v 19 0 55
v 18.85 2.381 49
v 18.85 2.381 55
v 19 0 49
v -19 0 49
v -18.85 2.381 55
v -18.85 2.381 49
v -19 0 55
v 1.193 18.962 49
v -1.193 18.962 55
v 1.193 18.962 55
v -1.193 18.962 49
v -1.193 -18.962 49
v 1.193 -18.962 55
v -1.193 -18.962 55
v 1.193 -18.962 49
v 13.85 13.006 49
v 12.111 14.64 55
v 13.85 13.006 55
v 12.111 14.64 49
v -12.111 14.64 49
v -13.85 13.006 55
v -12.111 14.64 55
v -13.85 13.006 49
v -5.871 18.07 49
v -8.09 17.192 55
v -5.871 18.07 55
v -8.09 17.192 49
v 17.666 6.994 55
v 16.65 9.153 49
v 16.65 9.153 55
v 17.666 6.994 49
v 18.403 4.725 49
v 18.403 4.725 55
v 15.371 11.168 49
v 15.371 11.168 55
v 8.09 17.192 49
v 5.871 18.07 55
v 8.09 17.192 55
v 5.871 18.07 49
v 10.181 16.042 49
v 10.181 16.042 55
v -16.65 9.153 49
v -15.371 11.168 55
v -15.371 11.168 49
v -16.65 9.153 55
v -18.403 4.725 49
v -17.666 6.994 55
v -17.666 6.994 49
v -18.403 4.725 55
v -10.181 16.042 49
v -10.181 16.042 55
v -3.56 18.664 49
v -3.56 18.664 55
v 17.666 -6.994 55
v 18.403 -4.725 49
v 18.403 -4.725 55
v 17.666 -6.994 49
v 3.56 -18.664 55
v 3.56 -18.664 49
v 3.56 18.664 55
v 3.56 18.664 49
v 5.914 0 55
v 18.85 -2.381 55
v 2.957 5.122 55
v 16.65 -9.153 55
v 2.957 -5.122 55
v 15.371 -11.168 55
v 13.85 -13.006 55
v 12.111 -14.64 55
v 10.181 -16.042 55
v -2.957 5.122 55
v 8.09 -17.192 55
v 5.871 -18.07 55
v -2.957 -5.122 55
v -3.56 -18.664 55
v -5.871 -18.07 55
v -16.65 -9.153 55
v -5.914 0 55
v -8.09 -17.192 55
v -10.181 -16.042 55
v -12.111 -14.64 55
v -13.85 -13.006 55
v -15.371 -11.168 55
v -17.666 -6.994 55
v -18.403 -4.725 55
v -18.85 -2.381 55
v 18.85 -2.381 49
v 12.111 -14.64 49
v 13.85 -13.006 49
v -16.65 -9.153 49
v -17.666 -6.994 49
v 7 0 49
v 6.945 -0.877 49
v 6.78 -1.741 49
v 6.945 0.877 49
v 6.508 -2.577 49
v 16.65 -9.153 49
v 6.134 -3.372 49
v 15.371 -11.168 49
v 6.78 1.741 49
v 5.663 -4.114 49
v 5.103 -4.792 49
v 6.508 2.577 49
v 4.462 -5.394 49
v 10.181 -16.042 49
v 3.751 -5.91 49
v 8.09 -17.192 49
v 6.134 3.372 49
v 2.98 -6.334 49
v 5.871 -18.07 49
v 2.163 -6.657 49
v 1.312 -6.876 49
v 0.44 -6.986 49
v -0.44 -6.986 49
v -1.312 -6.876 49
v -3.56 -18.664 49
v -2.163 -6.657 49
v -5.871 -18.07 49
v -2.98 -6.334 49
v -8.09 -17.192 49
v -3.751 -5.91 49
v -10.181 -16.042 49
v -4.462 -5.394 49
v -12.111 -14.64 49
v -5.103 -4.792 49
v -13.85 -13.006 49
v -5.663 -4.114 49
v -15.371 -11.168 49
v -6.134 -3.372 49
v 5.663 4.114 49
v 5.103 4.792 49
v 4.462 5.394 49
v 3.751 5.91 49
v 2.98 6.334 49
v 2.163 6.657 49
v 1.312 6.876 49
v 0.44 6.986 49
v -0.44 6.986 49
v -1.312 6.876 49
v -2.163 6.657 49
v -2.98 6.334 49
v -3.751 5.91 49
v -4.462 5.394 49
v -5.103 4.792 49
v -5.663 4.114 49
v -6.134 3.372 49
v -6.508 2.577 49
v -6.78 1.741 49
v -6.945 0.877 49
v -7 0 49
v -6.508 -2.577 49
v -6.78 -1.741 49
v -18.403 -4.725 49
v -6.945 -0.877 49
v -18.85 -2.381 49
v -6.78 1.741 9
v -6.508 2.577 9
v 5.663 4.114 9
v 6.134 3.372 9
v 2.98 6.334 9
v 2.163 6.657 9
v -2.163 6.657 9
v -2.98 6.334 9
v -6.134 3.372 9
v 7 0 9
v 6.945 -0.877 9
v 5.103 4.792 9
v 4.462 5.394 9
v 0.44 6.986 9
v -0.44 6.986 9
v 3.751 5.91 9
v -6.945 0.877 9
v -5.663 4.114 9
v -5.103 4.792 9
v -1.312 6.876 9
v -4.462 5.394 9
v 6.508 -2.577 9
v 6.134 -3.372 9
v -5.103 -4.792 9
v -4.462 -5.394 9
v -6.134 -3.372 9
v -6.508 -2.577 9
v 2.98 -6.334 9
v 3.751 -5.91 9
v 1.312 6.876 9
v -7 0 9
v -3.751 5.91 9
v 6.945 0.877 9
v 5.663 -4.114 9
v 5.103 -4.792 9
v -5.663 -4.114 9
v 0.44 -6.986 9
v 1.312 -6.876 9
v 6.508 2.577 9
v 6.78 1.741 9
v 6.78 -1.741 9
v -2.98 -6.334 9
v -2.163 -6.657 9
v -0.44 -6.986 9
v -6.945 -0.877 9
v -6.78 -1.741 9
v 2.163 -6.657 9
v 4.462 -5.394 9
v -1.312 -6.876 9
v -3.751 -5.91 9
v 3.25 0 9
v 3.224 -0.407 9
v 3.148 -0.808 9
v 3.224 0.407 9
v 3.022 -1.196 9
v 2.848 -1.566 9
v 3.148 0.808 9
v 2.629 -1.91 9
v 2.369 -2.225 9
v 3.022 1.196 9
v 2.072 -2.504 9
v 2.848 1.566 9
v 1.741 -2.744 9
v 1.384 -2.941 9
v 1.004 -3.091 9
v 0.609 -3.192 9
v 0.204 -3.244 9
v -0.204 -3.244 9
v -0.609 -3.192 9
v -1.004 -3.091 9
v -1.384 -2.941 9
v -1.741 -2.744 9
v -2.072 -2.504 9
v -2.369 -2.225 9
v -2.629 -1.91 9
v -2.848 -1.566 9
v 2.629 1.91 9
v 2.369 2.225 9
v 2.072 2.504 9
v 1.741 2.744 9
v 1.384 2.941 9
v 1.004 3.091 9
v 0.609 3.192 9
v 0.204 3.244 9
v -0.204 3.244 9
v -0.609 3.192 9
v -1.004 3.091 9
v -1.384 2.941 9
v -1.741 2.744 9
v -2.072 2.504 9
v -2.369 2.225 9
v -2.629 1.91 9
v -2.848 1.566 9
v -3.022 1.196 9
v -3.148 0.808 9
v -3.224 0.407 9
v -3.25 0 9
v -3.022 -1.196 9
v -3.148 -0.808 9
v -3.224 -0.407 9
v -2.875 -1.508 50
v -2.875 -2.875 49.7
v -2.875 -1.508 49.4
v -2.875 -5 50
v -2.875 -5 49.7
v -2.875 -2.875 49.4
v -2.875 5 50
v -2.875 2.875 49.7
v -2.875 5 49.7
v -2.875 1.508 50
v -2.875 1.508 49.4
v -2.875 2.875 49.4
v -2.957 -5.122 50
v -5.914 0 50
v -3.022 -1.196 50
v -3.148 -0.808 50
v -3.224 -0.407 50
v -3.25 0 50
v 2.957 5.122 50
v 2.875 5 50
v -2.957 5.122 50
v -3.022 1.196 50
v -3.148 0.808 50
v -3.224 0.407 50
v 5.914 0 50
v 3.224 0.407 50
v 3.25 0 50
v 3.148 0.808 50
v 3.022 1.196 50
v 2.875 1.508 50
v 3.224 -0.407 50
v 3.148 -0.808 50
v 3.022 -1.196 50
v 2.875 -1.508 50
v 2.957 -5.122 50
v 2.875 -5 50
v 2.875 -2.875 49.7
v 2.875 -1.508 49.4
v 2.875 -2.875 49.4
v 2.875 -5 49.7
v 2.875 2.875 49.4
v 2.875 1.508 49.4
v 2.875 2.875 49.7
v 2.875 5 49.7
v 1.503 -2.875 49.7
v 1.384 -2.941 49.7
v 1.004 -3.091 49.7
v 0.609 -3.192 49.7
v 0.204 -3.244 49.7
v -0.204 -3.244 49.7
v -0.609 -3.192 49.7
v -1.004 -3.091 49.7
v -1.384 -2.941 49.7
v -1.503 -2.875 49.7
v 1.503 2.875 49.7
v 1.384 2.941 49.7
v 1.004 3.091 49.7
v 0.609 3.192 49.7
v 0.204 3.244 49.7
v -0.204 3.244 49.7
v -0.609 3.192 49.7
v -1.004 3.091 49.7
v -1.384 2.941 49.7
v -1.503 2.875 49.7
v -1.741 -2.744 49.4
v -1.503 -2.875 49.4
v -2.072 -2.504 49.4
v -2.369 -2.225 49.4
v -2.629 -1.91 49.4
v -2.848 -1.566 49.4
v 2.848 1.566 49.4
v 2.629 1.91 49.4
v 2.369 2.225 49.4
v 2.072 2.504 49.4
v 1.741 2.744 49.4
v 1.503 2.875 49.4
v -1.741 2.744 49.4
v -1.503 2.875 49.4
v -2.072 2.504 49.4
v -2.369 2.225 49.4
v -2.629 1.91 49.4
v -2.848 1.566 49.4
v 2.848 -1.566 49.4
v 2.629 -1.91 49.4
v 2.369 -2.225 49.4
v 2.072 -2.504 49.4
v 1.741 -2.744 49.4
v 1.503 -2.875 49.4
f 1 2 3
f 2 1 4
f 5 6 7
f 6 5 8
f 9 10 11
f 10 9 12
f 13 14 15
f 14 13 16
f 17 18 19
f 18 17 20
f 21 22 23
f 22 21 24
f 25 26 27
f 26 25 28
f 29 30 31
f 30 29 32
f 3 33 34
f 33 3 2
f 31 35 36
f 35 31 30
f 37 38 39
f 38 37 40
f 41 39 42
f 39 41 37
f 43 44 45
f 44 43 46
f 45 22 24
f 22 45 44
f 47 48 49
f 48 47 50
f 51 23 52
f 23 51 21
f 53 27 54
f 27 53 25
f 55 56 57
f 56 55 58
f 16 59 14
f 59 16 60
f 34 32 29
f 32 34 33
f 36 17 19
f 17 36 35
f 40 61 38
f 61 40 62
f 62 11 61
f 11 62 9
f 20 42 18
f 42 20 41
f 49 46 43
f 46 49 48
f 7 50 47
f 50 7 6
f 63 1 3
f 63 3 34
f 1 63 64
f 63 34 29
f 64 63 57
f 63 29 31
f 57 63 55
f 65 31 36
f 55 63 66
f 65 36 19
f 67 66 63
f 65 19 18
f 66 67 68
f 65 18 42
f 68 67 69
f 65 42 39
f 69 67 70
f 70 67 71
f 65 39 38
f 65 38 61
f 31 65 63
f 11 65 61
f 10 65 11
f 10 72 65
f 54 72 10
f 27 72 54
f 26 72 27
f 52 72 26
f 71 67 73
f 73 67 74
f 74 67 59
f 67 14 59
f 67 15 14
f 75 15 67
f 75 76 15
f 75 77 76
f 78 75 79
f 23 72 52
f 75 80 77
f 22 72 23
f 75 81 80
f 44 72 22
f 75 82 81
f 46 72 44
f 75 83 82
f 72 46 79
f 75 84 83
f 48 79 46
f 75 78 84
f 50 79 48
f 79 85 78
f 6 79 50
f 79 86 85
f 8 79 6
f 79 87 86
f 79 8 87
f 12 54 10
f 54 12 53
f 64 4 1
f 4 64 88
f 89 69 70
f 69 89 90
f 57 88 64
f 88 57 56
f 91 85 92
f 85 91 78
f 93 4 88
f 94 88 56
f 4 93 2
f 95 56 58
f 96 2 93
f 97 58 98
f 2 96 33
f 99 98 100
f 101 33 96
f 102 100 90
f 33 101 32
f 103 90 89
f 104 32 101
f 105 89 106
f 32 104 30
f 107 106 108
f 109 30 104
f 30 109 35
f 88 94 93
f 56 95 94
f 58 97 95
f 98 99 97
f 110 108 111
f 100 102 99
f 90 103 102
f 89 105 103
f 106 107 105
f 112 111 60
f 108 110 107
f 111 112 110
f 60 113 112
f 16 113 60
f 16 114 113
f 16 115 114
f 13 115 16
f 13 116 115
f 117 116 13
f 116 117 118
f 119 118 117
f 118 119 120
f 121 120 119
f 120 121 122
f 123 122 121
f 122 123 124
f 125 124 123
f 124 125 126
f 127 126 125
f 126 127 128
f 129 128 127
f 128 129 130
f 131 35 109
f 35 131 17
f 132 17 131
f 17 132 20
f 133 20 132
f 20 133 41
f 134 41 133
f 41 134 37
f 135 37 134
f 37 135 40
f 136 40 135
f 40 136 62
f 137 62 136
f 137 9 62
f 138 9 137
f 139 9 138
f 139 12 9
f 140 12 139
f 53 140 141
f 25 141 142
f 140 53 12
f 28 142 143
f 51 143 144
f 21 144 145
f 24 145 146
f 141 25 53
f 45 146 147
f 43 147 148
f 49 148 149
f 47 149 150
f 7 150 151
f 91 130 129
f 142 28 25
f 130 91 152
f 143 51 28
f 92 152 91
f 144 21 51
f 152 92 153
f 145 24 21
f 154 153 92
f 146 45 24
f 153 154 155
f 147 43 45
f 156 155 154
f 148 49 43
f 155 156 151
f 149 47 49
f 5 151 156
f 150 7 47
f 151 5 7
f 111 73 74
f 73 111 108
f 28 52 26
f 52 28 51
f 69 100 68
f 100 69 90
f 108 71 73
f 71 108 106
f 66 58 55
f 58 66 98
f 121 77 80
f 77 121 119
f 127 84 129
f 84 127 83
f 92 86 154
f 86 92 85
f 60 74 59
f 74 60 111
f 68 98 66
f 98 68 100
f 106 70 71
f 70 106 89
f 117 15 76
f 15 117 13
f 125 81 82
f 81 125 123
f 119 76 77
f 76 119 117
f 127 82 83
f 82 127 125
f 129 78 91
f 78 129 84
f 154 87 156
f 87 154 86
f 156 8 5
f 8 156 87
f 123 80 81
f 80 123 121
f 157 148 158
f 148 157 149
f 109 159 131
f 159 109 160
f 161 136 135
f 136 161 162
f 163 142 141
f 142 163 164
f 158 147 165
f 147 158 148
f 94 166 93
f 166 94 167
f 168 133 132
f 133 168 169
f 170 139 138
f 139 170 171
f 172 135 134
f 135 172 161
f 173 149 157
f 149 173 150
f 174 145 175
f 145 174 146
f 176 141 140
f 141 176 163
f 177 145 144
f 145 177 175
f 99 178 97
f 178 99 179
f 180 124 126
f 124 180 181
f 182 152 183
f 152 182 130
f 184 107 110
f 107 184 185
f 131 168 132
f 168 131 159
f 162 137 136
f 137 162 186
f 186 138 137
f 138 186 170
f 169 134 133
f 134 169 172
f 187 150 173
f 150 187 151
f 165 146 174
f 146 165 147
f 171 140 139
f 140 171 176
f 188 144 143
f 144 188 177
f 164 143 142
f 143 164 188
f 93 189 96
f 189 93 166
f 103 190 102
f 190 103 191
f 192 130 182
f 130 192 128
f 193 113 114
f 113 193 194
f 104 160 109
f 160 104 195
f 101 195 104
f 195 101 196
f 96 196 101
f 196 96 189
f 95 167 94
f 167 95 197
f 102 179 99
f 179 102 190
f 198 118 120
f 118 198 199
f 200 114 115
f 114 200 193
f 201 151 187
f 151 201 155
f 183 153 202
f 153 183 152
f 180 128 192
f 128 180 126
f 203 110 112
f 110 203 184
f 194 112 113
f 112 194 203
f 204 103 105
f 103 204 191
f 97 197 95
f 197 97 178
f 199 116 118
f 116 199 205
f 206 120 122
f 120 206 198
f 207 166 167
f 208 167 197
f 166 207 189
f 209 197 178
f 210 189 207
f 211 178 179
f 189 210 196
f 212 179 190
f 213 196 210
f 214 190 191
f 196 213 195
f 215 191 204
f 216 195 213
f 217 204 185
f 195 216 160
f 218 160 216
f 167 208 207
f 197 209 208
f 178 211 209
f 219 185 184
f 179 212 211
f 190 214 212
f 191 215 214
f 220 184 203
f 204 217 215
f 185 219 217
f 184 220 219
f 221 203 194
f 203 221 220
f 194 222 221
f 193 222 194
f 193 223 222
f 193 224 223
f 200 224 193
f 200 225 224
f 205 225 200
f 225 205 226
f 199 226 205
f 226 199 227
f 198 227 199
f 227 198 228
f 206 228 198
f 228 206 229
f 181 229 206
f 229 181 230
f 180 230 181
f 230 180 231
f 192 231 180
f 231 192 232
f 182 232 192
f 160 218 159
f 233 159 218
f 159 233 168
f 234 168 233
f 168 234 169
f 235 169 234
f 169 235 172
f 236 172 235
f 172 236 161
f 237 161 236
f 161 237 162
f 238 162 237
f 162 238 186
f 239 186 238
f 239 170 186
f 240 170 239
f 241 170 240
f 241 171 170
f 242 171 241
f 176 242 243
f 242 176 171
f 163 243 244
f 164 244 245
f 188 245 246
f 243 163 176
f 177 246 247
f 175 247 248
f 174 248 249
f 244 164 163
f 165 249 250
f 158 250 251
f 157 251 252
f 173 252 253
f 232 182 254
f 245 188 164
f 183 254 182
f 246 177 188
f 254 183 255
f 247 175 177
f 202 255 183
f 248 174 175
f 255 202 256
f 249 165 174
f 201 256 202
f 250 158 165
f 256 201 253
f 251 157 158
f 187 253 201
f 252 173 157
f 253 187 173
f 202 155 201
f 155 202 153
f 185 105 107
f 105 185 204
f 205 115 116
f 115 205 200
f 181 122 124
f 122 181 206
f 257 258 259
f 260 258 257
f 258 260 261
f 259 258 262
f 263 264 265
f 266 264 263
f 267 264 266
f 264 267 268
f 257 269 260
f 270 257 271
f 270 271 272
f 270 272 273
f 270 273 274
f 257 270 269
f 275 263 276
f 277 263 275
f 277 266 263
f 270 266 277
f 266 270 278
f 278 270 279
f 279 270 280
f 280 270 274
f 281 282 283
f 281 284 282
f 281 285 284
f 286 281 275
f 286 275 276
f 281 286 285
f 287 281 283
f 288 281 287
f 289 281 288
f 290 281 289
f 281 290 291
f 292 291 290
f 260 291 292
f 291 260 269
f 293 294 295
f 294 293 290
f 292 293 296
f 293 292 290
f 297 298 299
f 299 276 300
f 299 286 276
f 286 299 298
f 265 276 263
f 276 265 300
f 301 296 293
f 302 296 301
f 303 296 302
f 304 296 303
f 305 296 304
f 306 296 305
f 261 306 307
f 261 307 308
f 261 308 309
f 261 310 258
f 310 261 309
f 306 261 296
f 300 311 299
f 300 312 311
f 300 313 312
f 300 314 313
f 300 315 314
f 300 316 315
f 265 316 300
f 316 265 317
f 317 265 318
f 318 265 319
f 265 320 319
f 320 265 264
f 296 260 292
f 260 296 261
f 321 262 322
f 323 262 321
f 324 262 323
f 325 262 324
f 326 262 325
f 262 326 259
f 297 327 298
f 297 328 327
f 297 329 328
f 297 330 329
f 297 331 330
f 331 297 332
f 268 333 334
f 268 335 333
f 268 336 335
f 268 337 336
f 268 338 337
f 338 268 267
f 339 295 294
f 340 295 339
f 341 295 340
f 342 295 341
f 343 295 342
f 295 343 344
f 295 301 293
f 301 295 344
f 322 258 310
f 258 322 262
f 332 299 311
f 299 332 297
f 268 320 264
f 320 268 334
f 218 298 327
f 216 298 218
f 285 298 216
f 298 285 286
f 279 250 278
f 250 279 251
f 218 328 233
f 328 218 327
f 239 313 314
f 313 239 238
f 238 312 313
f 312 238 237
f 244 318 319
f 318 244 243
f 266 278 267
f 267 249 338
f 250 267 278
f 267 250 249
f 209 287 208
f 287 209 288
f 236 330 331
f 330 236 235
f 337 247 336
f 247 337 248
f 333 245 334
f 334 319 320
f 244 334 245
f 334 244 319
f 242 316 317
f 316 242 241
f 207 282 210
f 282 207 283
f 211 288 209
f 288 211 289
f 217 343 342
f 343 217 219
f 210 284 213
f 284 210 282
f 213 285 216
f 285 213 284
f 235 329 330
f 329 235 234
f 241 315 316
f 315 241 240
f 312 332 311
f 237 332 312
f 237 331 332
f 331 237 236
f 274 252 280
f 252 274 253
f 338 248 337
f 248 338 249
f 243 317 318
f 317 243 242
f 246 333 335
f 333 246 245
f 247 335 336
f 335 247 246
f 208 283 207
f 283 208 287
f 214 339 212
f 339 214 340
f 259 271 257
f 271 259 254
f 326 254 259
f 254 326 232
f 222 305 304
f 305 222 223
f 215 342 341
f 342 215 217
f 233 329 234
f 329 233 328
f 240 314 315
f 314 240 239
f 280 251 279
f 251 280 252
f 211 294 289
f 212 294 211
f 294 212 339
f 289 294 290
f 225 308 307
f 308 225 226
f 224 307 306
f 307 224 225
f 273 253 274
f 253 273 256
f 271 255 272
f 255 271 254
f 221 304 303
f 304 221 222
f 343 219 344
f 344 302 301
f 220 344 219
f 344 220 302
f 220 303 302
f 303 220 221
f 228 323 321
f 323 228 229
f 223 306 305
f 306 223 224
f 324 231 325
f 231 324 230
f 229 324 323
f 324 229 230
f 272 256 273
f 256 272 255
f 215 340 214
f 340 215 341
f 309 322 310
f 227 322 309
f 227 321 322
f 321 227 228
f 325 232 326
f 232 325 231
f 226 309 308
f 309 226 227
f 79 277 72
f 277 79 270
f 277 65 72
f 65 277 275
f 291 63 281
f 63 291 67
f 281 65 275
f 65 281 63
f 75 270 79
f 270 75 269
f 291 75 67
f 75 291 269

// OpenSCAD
$fn = 50;


difference() {
	union() {
		translate(v = [0, 0, 49.0000000000]) {
			cylinder(h = 6, r = 19.0000000000);
		}
		translate(v = [0, 0, 9.0000000000]) {
			cylinder(h = 46, r = 7.0000000000);
		}
	}
	union() {
		translate(v = [0, 0, 55]) {
			rotate(a = [0, 0, 0]) {
				difference() {
					union() {
						#translate(v = [-2.8750000000, -5.0000000000, -5.3000000000]) {
							cube(size = [5.7500000000, 10, 0.3000000000]);
						}
						#translate(v = [-2.8750000000, -2.8750000000, -5.6000000000]) {
							cube(size = [5.7500000000, 5.7500000000, 0.3000000000]);
						}
						#translate(v = [-2.8750000000, -5.0000000000, 0]) {
							cube(size = [5.7500000000, 10, 0.3000000000]);
						}
						#translate(v = [-2.8750000000, -2.8750000000, 0.3000000000]) {
							cube(size = [5.7500000000, 5.7500000000, 0.3000000000]);
						}
						#translate(v = [0, 0, -100.0000000000]) {
							cylinder(h = 200, r = 3.2500000000);
						}
						translate(v = [0, 0, -5]) {
							#linear_extrude(height = 5) {
								polygon(points = [[5.9142500000, 0.0000000000], [2.9571250000, 5.1218907443], [-2.9571250000, 5.1218907443], [-5.9142500000, 0.0000000000], [-2.9571250000, -5.1218907443], [2.9571250000, -5.1218907443]]);
							}
						}
						#translate(v = [-2.8750000000, -5.0000000000, -5.3000000000]) {
							cube(size = [5.7500000000, 10, 0.3000000000]);
						}
						#translate(v = [-2.8750000000, -2.8750000000, -5.6000000000]) {
							cube(size = [5.7500000000, 5.7500000000, 0.3000000000]);
						}
						#translate(v = [-2.8750000000, -5.0000000000, 0]) {
							cube(size = [5.7500000000, 10, 0.3000000000]);
						}
						#translate(v = [-2.8750000000, -2.8750000000, 0.3000000000]) {
							cube(size = [5.7500000000, 5.7500000000, 0.3000000000]);
						}
						#translate(v = [0, 0, -100.0000000000]) {
							cylinder(h = 200, r = 3.2500000000);
						}
						#translate(v = [-2.8750000000, -5.0000000000, -5.3000000000]) {
							cube(size = [5.7500000000, 10, 0.3000000000]);
						}
						#translate(v = [-2.8750000000, -2.8750000000, -5.6000000000]) {
							cube(size = [5.7500000000, 5.7500000000, 0.3000000000]);
						}
						#translate(v = [-2.8750000000, -5.0000000000, 0]) {
							cube(size = [5.7500000000, 10, 0.3000000000]);
						}
						#translate(v = [-2.8750000000, -2.8750000000, 0.3000000000]) {
							cube(size = [5.7500000000, 5.7500000000, 0.3000000000]);
						}
						#translate(v = [0, 0, -100.0000000000]) {
							cylinder(h = 200, r = 3.2500000000);
						}
					}
					union();
				}
			}
		}
		#translate(v = [0, 0, -100.0000000000]) {
			cylinder(h = 200, r = 3.2500000000);
		}
	}
}
